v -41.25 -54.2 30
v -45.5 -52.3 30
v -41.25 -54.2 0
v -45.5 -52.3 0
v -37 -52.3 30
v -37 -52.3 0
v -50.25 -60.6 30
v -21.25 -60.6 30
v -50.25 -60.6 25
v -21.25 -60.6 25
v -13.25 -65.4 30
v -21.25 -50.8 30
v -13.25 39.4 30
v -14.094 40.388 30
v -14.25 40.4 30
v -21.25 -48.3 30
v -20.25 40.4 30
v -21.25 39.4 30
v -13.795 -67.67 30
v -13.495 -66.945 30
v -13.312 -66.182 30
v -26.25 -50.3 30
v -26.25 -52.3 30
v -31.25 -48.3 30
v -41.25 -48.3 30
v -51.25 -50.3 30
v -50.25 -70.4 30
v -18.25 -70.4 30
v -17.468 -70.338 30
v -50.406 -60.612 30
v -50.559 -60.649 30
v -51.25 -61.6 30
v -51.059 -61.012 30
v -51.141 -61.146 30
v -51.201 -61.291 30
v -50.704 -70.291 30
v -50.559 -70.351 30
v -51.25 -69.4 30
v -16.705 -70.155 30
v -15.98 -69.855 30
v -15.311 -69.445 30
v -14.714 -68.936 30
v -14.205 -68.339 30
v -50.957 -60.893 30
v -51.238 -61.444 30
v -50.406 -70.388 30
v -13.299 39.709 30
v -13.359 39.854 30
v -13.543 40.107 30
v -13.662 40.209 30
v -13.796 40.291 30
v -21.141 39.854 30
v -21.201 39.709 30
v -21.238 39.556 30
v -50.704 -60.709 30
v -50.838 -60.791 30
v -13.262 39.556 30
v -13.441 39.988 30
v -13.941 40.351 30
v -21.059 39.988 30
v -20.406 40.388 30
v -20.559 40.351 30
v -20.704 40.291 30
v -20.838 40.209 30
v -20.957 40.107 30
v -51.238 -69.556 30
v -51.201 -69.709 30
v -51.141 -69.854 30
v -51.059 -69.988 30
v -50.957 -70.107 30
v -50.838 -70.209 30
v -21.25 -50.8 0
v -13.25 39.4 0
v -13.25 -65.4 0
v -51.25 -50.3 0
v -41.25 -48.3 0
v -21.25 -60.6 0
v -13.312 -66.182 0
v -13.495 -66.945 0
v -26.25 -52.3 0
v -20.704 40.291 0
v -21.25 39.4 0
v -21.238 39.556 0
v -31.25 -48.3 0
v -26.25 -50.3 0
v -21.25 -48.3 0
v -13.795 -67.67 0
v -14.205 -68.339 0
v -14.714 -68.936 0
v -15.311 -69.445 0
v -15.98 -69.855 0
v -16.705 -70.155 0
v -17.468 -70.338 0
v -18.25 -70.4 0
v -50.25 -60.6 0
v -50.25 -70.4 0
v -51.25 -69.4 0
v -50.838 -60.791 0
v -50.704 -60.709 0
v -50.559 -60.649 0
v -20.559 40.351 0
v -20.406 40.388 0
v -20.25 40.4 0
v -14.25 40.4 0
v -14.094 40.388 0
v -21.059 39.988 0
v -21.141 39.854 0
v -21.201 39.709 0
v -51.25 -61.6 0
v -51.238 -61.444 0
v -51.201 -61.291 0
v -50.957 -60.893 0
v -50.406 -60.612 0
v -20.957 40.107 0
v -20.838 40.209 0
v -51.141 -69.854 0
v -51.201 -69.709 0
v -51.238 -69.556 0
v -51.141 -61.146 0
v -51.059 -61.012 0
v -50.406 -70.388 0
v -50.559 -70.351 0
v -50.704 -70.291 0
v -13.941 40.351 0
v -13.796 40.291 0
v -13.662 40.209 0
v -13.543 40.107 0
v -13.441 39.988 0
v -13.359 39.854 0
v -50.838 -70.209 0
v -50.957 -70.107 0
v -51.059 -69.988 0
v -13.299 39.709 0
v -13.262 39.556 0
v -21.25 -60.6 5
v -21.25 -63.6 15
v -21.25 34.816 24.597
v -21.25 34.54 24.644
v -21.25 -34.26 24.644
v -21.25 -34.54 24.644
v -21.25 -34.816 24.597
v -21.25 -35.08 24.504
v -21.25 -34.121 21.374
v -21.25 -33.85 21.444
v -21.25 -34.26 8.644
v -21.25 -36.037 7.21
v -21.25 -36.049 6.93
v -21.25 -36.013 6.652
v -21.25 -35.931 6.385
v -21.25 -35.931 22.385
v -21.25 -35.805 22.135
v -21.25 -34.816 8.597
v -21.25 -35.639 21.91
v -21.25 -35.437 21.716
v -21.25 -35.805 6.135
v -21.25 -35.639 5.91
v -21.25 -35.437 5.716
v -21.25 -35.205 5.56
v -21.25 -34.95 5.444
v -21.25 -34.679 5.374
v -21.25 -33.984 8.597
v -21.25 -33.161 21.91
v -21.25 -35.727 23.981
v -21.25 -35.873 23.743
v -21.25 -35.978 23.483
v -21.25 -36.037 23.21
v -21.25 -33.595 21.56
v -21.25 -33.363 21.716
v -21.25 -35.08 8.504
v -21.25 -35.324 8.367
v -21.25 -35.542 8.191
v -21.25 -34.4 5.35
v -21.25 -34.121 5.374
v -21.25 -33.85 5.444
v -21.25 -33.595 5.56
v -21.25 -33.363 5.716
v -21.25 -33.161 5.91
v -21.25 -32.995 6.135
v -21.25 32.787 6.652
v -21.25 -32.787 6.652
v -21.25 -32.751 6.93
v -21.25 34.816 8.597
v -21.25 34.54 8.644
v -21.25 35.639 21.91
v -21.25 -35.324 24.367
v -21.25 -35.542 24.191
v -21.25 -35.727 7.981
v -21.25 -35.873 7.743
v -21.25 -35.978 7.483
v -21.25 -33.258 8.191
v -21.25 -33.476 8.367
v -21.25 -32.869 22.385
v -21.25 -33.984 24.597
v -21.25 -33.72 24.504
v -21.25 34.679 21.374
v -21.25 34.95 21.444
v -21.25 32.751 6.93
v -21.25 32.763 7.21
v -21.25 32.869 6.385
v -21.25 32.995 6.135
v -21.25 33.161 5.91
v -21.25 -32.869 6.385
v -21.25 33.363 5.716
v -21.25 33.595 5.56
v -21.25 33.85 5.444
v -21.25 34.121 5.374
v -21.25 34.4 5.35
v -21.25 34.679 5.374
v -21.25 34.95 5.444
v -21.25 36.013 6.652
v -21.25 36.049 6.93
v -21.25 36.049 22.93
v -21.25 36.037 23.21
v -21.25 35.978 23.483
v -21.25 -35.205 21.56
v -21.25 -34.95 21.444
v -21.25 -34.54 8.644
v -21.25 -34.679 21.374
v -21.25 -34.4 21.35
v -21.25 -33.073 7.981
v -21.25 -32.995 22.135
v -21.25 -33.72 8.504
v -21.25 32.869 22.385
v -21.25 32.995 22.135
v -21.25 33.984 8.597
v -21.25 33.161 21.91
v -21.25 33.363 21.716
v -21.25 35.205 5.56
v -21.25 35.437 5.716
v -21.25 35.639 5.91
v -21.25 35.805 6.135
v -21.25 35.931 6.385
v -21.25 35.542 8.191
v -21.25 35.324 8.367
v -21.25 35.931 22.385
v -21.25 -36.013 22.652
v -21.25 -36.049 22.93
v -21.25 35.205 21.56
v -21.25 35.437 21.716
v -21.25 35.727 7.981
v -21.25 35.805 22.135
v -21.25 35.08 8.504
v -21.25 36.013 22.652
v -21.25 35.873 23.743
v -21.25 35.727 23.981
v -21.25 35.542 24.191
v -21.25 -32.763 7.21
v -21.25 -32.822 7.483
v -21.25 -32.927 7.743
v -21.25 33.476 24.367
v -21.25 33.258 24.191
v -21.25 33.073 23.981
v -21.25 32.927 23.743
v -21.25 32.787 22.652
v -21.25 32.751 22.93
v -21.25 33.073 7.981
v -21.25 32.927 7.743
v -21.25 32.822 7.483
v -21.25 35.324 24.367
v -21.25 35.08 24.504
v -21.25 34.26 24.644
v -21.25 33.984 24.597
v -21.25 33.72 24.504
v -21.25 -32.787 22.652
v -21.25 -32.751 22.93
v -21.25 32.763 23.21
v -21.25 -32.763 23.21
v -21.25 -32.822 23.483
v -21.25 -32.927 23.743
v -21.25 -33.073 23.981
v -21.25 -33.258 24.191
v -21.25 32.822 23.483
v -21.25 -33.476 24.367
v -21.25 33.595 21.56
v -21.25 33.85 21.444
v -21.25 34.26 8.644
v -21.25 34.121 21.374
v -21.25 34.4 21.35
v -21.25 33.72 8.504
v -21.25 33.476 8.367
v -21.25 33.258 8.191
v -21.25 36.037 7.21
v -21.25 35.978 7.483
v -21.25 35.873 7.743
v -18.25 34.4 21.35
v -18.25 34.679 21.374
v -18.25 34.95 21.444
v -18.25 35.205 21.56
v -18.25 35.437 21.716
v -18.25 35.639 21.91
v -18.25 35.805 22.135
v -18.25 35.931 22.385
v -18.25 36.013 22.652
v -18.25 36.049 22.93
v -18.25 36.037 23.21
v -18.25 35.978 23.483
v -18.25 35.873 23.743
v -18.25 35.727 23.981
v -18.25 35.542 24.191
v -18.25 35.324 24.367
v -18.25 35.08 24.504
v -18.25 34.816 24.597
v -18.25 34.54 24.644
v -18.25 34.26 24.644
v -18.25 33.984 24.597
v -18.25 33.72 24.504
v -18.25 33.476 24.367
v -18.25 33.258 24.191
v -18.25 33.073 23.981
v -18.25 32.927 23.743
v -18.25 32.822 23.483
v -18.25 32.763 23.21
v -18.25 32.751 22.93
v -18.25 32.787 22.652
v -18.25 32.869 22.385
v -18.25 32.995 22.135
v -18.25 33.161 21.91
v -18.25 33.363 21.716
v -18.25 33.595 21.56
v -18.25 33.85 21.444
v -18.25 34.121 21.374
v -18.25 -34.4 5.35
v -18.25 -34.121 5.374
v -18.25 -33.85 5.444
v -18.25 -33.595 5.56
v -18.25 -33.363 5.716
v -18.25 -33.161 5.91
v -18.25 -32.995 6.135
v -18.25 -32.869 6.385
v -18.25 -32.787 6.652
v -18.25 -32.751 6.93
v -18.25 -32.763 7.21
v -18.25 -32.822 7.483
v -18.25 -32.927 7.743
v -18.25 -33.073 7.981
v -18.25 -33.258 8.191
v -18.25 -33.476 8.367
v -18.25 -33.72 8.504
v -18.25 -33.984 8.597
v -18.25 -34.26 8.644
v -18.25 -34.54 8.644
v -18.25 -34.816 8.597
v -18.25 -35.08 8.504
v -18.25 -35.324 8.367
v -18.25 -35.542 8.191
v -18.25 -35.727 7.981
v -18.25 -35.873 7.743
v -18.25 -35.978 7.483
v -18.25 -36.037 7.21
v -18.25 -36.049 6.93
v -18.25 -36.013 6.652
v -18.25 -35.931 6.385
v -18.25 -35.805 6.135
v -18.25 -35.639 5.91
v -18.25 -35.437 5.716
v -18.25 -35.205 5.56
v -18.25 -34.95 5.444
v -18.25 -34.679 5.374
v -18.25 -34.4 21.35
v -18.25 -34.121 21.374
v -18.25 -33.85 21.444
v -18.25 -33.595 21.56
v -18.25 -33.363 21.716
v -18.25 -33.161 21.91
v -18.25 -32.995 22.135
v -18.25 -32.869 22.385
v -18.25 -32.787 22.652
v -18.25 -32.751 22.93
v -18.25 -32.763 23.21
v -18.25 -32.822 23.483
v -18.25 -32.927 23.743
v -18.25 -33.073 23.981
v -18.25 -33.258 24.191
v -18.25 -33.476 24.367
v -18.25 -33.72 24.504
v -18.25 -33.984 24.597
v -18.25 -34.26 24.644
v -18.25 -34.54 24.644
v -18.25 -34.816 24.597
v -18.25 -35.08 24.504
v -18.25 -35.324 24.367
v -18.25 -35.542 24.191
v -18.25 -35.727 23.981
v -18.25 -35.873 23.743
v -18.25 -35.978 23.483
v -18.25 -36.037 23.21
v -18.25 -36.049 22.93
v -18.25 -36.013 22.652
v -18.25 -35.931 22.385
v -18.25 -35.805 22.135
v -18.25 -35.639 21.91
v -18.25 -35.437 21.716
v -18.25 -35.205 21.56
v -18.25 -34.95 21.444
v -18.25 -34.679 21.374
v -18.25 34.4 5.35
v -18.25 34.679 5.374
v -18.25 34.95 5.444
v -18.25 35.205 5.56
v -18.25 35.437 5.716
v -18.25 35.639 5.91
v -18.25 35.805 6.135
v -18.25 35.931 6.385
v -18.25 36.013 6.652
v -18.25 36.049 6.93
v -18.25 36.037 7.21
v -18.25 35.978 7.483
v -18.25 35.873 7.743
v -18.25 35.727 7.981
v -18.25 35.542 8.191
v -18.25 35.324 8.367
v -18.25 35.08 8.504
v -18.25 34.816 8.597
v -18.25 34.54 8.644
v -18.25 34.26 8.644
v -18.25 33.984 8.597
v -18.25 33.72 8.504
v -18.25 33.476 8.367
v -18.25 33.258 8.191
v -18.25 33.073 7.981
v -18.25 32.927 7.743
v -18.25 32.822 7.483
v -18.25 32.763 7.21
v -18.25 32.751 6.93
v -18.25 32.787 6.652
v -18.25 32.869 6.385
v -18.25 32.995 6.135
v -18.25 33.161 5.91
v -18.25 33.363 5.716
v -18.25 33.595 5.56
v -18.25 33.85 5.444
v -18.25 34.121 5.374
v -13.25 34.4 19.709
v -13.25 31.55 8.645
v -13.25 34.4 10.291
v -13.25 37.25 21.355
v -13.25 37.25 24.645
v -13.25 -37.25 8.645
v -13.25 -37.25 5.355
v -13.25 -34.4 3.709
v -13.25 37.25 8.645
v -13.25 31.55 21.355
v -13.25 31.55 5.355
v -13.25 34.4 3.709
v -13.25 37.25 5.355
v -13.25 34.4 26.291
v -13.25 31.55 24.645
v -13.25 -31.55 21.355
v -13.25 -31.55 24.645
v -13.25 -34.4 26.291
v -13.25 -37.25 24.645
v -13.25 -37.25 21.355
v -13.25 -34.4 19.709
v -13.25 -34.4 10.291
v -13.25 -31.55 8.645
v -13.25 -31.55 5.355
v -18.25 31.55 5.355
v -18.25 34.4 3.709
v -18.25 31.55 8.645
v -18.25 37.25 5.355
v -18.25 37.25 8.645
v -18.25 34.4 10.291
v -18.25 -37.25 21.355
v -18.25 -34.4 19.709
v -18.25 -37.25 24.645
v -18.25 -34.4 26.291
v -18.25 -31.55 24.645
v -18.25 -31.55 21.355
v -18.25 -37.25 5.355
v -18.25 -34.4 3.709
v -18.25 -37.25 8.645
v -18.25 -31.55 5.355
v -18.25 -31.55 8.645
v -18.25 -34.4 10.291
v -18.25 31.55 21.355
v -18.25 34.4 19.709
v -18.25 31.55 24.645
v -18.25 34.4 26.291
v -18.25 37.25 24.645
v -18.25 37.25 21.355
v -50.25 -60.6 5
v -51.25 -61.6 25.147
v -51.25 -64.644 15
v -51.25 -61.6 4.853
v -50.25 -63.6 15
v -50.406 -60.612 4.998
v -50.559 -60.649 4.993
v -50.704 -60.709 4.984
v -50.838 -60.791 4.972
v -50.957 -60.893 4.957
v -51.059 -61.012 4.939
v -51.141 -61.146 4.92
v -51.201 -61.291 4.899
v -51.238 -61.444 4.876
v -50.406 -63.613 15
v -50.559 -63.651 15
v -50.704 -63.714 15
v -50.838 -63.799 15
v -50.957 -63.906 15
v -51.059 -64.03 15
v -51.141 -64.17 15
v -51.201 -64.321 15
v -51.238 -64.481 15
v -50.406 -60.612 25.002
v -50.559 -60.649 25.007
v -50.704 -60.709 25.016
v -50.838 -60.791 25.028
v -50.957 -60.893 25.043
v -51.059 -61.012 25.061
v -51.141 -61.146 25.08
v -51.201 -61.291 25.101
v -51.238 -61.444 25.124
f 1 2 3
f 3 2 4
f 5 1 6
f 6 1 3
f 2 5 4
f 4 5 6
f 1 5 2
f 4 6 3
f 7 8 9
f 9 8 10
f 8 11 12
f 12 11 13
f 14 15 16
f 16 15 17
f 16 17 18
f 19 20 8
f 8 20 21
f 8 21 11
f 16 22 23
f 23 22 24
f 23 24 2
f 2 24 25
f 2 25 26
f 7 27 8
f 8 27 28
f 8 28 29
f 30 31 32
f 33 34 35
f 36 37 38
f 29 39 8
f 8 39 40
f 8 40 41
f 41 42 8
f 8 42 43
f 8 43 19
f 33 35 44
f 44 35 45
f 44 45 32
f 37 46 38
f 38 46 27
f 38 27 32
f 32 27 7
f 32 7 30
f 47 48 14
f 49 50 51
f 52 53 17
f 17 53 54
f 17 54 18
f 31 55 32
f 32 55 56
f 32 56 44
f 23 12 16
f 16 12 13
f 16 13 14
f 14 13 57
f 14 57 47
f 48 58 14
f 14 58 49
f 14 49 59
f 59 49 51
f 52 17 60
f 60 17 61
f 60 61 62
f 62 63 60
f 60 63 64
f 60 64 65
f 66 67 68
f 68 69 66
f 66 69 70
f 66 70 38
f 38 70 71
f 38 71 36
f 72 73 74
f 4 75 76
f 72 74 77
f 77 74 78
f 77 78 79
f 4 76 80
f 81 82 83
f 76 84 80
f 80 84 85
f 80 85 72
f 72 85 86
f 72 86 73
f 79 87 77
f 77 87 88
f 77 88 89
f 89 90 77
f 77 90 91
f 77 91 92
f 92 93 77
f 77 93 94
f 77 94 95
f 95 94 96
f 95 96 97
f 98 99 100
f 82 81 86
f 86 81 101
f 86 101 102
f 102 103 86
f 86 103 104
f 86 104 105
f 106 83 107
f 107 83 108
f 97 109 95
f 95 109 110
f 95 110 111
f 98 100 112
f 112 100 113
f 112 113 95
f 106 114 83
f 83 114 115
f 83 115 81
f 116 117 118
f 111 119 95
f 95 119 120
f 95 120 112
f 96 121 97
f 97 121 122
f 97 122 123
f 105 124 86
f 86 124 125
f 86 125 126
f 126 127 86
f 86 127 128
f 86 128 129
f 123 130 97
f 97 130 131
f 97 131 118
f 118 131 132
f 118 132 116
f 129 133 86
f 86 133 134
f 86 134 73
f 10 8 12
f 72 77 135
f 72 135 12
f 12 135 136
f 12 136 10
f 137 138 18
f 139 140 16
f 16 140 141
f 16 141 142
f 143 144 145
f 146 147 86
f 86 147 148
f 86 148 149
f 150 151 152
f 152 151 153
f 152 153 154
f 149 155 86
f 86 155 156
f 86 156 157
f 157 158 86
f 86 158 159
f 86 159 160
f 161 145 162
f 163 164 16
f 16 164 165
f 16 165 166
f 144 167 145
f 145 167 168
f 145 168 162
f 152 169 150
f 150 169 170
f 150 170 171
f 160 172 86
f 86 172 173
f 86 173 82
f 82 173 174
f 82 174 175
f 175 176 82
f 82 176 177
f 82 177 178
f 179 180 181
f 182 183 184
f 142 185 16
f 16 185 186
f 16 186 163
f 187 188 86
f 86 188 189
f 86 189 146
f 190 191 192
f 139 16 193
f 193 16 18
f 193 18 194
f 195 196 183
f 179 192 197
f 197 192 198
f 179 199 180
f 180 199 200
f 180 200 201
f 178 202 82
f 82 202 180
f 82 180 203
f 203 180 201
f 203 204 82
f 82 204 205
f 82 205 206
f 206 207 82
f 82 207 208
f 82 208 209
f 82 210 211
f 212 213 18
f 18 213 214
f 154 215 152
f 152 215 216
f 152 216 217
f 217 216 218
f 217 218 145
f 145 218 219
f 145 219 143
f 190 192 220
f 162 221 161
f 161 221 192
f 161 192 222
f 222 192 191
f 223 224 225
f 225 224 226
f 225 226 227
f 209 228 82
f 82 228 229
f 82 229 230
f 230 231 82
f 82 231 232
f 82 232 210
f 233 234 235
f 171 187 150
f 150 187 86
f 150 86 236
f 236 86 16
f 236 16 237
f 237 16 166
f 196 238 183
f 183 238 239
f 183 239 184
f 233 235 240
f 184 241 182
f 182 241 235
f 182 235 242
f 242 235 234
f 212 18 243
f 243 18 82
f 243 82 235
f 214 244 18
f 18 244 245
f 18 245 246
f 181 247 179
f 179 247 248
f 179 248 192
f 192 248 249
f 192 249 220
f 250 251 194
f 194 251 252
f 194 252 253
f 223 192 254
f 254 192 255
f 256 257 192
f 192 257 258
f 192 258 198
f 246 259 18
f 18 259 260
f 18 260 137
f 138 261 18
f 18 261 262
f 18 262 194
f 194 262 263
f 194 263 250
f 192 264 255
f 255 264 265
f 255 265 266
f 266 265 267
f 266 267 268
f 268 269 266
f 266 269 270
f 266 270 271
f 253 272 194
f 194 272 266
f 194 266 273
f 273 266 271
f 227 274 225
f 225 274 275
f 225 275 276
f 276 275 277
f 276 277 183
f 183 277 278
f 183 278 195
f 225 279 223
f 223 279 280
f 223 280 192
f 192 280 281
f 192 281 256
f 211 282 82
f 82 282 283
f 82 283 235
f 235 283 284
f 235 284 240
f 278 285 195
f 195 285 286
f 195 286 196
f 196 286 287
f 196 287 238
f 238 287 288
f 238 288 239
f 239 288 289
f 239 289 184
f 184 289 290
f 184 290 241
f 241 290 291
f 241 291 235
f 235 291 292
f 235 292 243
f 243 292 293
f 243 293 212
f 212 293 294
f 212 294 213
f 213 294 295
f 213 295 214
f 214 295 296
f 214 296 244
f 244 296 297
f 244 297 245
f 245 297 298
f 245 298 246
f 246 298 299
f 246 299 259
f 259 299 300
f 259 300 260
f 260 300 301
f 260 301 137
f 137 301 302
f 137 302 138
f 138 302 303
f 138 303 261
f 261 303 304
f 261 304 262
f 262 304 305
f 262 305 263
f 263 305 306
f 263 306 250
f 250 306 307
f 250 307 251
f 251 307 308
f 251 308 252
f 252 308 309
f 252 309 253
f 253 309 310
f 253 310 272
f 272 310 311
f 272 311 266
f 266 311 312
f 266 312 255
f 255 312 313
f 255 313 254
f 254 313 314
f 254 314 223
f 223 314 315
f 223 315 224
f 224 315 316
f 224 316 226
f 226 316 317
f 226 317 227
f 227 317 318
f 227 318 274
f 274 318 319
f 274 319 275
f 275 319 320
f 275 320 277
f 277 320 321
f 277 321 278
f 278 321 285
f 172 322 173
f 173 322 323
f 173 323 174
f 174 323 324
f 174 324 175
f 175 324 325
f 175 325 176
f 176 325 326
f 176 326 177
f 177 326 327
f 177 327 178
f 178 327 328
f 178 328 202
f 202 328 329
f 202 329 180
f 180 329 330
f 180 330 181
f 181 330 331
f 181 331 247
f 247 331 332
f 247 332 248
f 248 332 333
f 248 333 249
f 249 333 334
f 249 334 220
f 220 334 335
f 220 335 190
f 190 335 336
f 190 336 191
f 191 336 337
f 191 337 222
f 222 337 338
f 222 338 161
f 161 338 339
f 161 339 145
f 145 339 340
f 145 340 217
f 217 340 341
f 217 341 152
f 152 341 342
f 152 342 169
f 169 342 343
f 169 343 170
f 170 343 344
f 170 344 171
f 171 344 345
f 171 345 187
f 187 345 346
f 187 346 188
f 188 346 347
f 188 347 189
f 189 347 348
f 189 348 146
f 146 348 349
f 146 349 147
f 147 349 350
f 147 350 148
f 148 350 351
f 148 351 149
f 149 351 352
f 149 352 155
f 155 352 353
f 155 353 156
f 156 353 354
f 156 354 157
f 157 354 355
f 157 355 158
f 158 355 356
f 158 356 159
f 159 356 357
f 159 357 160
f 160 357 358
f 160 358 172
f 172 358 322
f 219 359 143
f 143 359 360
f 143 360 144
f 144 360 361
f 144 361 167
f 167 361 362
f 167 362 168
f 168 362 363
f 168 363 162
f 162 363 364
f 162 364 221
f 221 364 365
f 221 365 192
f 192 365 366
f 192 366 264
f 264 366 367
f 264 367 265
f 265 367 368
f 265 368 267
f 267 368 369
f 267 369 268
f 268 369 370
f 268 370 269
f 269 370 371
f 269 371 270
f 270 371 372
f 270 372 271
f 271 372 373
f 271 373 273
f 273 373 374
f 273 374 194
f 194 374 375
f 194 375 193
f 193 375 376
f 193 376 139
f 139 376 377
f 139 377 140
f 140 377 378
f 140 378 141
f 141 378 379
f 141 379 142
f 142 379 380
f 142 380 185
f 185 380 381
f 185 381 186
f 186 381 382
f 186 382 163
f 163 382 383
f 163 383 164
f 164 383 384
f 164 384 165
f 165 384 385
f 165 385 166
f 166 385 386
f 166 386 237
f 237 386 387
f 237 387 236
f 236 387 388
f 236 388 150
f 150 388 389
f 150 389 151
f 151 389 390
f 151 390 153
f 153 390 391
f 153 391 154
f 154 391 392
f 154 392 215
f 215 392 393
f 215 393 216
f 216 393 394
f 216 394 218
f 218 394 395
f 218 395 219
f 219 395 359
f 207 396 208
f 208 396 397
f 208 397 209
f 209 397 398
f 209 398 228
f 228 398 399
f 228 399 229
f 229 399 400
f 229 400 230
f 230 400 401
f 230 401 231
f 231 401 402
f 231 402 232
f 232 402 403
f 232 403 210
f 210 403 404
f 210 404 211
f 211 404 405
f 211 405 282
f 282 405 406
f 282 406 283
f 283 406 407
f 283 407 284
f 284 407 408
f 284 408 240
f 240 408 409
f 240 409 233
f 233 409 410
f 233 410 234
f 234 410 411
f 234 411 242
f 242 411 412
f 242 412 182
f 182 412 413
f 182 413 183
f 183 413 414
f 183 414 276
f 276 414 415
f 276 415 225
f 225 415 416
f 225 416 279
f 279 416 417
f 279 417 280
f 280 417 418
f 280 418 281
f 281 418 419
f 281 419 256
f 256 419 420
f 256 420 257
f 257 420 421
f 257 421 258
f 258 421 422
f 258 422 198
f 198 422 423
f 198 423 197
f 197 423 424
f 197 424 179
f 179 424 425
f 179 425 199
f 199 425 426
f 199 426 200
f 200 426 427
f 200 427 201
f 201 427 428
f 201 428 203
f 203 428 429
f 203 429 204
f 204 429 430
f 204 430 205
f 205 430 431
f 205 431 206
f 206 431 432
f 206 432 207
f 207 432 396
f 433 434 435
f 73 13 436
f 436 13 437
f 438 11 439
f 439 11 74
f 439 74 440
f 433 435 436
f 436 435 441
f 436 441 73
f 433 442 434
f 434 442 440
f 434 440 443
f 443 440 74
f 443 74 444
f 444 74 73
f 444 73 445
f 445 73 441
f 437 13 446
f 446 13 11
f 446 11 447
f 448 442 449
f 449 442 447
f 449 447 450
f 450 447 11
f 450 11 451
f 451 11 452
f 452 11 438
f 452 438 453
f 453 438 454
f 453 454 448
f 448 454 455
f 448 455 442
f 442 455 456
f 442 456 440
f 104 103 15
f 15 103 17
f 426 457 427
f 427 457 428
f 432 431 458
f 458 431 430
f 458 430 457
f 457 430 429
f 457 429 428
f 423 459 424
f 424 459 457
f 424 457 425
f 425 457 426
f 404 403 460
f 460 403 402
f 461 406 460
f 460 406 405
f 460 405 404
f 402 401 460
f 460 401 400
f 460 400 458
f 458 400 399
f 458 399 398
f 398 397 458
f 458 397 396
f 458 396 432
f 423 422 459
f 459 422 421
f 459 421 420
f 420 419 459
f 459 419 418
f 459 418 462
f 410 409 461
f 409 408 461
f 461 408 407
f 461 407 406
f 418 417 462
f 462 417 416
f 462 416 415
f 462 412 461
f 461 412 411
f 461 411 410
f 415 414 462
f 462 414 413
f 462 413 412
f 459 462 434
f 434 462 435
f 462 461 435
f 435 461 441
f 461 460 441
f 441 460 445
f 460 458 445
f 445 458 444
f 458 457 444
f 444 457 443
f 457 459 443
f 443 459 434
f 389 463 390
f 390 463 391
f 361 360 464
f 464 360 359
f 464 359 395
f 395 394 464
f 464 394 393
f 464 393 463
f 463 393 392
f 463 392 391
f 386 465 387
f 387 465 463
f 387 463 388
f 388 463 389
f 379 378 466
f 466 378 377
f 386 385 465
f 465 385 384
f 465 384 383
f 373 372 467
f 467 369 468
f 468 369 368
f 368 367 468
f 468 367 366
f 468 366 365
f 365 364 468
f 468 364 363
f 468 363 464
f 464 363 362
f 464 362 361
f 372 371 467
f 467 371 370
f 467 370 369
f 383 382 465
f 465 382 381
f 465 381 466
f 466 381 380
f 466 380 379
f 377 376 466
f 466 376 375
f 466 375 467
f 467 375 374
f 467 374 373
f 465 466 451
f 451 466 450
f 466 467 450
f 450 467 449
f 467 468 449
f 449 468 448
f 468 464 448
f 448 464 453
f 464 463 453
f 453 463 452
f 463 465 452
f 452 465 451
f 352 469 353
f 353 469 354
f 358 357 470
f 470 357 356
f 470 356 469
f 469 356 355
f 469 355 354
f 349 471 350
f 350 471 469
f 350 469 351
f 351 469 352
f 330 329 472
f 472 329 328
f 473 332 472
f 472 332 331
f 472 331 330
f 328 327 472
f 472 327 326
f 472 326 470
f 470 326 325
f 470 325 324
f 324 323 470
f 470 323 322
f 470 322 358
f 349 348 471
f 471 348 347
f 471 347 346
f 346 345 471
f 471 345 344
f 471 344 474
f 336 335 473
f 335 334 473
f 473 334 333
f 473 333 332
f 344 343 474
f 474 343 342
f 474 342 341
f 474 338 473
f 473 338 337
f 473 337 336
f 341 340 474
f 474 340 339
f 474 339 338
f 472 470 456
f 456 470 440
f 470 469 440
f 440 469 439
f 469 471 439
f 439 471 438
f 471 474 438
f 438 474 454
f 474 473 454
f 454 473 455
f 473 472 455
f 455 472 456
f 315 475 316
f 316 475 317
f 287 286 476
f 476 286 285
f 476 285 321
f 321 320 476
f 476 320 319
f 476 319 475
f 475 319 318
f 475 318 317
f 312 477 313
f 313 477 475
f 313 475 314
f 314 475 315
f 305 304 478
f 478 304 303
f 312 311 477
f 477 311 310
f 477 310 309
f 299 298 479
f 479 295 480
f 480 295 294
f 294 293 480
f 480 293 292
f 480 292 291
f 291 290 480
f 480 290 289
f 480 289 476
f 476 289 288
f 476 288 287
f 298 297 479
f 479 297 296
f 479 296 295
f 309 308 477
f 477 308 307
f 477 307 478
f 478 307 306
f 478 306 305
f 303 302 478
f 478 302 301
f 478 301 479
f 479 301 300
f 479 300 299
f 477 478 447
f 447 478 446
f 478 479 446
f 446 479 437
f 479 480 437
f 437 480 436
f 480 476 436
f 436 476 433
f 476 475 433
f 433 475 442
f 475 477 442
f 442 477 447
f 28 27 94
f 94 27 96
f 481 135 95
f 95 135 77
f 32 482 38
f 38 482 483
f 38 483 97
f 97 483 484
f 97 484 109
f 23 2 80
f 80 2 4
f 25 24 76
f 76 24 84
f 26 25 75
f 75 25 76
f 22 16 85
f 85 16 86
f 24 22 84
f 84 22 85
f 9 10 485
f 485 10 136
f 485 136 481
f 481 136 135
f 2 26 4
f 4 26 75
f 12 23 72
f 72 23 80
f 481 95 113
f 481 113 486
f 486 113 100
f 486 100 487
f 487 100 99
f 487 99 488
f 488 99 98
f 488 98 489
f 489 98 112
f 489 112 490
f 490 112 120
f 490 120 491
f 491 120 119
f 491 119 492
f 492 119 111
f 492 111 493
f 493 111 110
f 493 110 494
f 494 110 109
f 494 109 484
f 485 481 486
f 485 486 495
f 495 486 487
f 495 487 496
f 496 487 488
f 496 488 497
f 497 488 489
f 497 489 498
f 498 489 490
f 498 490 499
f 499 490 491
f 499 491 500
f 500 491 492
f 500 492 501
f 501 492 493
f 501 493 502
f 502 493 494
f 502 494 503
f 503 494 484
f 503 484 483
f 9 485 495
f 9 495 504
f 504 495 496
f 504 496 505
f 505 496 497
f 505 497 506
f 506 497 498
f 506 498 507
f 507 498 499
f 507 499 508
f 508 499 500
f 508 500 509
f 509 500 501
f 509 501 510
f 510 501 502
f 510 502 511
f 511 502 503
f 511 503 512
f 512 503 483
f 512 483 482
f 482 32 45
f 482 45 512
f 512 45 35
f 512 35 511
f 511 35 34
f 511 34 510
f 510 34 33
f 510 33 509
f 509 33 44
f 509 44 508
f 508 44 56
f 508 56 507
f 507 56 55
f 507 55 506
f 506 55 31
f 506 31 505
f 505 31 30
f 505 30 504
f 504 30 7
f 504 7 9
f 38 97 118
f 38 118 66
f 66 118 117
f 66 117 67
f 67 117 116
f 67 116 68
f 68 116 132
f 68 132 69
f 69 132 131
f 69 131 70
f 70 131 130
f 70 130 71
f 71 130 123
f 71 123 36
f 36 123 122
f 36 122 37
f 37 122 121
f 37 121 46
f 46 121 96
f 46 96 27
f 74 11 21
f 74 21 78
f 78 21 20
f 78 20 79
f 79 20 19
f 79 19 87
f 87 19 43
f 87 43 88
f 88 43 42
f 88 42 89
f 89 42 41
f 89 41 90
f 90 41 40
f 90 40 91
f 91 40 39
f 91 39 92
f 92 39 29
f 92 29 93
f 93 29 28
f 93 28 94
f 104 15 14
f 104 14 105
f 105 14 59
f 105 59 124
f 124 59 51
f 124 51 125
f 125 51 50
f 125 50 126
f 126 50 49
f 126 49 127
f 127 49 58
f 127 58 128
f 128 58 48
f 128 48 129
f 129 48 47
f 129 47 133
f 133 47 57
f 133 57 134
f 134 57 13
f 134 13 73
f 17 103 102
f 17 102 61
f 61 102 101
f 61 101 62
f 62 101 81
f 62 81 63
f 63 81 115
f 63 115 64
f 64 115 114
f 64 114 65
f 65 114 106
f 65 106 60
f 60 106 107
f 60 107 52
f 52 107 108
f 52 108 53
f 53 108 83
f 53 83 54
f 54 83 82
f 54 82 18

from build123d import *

# Parameters (mm, degrees)
SKETCH1_W           = 8
SKETCH1_H           = 80.8
BOSS_EXTRUDE1_DEPTH = 30
SKETCH2_R           = 1.65
CUT_EXTRUDE1_DEPTH  = 30
CUT_EXTRUDE3_DEPTH  = 5
SKETCH4_W           = 8
SKETCH4_H           = 30
BOSS_EXTRUDE2_DEPTH = 30
SKETCH5_W           = 30
SKETCH5_H           = 9.8
BOSS_EXTRUDE3_DEPTH = 30
SKETCH6_W           = 30
SKETCH6_H           = 4
BOSS_EXTRUDE4_DEPTH = 30
BOSS_EXTRUDE5_DEPTH = 30
CUT_EXTRUDE8_DEPTH  = 30
CUT_EXTRUDE9_DEPTH  = 30
CUT_EXTRUDE10_DEPTH = 30
FILLET1_R           = 1
FILLET2_R           = 5
FILLET3_R           = 1


with BuildPart() as part:
    # Sketch1 → Boss-Extrude1 (new body)
    with BuildSketch(Plane.XY):
        with Locations((-17.25, 0)):
            Rectangle(SKETCH1_W, SKETCH1_H)
    extrude(amount=BOSS_EXTRUDE1_DEPTH)

    # Sketch2 → Cut-Extrude1 (cut)
    with BuildSketch(Plane(origin=(-13.25, 0, 0), x_dir=(0, 0, -1), z_dir=(1, 0, 0))):
        with Locations((-7, 34.4)):
            Circle(SKETCH2_R)
        with Locations((-23, 34.4)):
            Circle(SKETCH2_R)
        with Locations((-23, -34.4)):
            Circle(SKETCH2_R)
        with Locations((-7, -34.4)):
            Circle(SKETCH2_R)
    extrude(amount=-CUT_EXTRUDE1_DEPTH, mode=Mode.SUBTRACT)

    # Sketch3 → Cut-Extrude3 (cut, symmetric)
    with BuildSketch(Plane(origin=(-13.25, 0, 0), x_dir=(0, 0, -1), z_dir=(1, 0, 0))):
        Polygon((-26.290896534, 34.4), (-24.645448267, 31.55), (-21.354551733, 31.55), (-19.709103466, 34.4), (-21.354551733, 37.25), (-24.645448267, 37.25), align=None)
        Polygon((-10.290896534, 34.4), (-8.645448267, 31.55), (-5.354551733, 31.55), (-3.709103466, 34.4), (-5.354551733, 37.25), (-8.645448267, 37.25), align=None)
        Polygon((-19.709103466, -34.4), (-21.354551733, -31.55), (-24.645448267, -31.55), (-26.290896534, -34.4), (-24.645448267, -37.25), (-21.354551733, -37.25), align=None)
        Polygon((-3.709103466, -34.4), (-5.354551733, -31.55), (-8.645448267, -31.55), (-10.290896534, -34.4), (-8.645448267, -37.25), (-5.354551733, -37.25), align=None)
    extrude(amount=CUT_EXTRUDE3_DEPTH, both=True, mode=Mode.SUBTRACT)

    # Sketch4 → Boss-Extrude2 (add)
    with BuildSketch(Plane.XZ.offset(40.4)):
        with Locations((-17.25, 15)):
            Rectangle(SKETCH4_W, SKETCH4_H)
    extrude(amount=BOSS_EXTRUDE2_DEPTH)

    # Sketch5 → Boss-Extrude3 (add)
    with BuildSketch(Plane.ZY.offset(21.25)):
        with Locations((15, -65.5)):
            Rectangle(SKETCH5_W, SKETCH5_H)
    extrude(amount=BOSS_EXTRUDE3_DEPTH)

    # Sketch6 → Boss-Extrude4 (add)
    with BuildSketch(Plane.ZY.offset(21.25)):
        with Locations((15, -50.3)):
            Rectangle(SKETCH6_W, SKETCH6_H)
    extrude(amount=BOSS_EXTRUDE4_DEPTH)

    # Sketch9 → Cut-Extrude8 (cut)
    with BuildSketch(Plane(origin=(0, 0, 0), x_dir=(-1, 0, 0), z_dir=(0, 0, -1))):
        Polygon((51.25, -48.3), (41.25, -48.3), (51.25, -50.3), align=None)
        Polygon((26.25, -50.3), (31.25, -48.3), (21.25, -48.3), align=None)
    extrude(amount=-CUT_EXTRUDE8_DEPTH, mode=Mode.SUBTRACT)

    # Sketch10 → Cut-Extrude9 (cut)
    with BuildSketch(Plane.ZY.offset(51.25)):
        Polygon((5, -60.6), (25, -60.6), (15, -63.6), align=None)
    extrude(amount=-CUT_EXTRUDE9_DEPTH, mode=Mode.SUBTRACT)

    # Sketch11 → Cut-Extrude10 (cut)
    with BuildSketch(Plane(origin=(0, 0, 0), x_dir=(-1, 0, 0), z_dir=(0, 0, -1))):
        Polygon((45.5, -52.3), (51.25, -50.3), (51.25, -52.3), align=None)
        Polygon((21.25, -52.3), (21.25, -50.8), (26.25, -52.3), align=None)
    extrude(amount=-CUT_EXTRUDE10_DEPTH, mode=Mode.SUBTRACT)

    # Fillet1
    fillet1_edges = [part.edges().sort_by_distance(p)[0] for p in [
        (-51.25, -70.4, 15),
        (-51.25, -60.6, 27.5),
        (-51.25, -60.6, 2.5),
        (-51.25, -62.1, 20),
        (-51.25, -62.1, 10),
    ]]
    fillet(fillet1_edges, radius=FILLET1_R)

    # Fillet2
    fillet2_edges = [part.edges().sort_by_distance(p)[0] for p in [
        (-13.25, -70.4, 15),
    ]]
    fillet(fillet2_edges, radius=FILLET2_R)

    # Fillet3
    fillet3_edges = [part.edges().sort_by_distance(p)[0] for p in [
        (-21.25, 40.4, 15),
        (-13.25, 40.4, 15),
    ]]
    fillet(fillet3_edges, radius=FILLET3_R)


with BuildPart() as body_2:
    # Sketch8 → Boss-Extrude5 (new body)
    with BuildSketch(Plane(origin=(0, 0, 0), x_dir=(-1, 0, 0), z_dir=(0, 0, -1))):
        Polygon((37, -52.3), (45.5, -52.3), (41.25, -54.2), align=None)
    extrude(amount=-BOSS_EXTRUDE5_DEPTH)


solid = Compound([part.part, body_2.part])
